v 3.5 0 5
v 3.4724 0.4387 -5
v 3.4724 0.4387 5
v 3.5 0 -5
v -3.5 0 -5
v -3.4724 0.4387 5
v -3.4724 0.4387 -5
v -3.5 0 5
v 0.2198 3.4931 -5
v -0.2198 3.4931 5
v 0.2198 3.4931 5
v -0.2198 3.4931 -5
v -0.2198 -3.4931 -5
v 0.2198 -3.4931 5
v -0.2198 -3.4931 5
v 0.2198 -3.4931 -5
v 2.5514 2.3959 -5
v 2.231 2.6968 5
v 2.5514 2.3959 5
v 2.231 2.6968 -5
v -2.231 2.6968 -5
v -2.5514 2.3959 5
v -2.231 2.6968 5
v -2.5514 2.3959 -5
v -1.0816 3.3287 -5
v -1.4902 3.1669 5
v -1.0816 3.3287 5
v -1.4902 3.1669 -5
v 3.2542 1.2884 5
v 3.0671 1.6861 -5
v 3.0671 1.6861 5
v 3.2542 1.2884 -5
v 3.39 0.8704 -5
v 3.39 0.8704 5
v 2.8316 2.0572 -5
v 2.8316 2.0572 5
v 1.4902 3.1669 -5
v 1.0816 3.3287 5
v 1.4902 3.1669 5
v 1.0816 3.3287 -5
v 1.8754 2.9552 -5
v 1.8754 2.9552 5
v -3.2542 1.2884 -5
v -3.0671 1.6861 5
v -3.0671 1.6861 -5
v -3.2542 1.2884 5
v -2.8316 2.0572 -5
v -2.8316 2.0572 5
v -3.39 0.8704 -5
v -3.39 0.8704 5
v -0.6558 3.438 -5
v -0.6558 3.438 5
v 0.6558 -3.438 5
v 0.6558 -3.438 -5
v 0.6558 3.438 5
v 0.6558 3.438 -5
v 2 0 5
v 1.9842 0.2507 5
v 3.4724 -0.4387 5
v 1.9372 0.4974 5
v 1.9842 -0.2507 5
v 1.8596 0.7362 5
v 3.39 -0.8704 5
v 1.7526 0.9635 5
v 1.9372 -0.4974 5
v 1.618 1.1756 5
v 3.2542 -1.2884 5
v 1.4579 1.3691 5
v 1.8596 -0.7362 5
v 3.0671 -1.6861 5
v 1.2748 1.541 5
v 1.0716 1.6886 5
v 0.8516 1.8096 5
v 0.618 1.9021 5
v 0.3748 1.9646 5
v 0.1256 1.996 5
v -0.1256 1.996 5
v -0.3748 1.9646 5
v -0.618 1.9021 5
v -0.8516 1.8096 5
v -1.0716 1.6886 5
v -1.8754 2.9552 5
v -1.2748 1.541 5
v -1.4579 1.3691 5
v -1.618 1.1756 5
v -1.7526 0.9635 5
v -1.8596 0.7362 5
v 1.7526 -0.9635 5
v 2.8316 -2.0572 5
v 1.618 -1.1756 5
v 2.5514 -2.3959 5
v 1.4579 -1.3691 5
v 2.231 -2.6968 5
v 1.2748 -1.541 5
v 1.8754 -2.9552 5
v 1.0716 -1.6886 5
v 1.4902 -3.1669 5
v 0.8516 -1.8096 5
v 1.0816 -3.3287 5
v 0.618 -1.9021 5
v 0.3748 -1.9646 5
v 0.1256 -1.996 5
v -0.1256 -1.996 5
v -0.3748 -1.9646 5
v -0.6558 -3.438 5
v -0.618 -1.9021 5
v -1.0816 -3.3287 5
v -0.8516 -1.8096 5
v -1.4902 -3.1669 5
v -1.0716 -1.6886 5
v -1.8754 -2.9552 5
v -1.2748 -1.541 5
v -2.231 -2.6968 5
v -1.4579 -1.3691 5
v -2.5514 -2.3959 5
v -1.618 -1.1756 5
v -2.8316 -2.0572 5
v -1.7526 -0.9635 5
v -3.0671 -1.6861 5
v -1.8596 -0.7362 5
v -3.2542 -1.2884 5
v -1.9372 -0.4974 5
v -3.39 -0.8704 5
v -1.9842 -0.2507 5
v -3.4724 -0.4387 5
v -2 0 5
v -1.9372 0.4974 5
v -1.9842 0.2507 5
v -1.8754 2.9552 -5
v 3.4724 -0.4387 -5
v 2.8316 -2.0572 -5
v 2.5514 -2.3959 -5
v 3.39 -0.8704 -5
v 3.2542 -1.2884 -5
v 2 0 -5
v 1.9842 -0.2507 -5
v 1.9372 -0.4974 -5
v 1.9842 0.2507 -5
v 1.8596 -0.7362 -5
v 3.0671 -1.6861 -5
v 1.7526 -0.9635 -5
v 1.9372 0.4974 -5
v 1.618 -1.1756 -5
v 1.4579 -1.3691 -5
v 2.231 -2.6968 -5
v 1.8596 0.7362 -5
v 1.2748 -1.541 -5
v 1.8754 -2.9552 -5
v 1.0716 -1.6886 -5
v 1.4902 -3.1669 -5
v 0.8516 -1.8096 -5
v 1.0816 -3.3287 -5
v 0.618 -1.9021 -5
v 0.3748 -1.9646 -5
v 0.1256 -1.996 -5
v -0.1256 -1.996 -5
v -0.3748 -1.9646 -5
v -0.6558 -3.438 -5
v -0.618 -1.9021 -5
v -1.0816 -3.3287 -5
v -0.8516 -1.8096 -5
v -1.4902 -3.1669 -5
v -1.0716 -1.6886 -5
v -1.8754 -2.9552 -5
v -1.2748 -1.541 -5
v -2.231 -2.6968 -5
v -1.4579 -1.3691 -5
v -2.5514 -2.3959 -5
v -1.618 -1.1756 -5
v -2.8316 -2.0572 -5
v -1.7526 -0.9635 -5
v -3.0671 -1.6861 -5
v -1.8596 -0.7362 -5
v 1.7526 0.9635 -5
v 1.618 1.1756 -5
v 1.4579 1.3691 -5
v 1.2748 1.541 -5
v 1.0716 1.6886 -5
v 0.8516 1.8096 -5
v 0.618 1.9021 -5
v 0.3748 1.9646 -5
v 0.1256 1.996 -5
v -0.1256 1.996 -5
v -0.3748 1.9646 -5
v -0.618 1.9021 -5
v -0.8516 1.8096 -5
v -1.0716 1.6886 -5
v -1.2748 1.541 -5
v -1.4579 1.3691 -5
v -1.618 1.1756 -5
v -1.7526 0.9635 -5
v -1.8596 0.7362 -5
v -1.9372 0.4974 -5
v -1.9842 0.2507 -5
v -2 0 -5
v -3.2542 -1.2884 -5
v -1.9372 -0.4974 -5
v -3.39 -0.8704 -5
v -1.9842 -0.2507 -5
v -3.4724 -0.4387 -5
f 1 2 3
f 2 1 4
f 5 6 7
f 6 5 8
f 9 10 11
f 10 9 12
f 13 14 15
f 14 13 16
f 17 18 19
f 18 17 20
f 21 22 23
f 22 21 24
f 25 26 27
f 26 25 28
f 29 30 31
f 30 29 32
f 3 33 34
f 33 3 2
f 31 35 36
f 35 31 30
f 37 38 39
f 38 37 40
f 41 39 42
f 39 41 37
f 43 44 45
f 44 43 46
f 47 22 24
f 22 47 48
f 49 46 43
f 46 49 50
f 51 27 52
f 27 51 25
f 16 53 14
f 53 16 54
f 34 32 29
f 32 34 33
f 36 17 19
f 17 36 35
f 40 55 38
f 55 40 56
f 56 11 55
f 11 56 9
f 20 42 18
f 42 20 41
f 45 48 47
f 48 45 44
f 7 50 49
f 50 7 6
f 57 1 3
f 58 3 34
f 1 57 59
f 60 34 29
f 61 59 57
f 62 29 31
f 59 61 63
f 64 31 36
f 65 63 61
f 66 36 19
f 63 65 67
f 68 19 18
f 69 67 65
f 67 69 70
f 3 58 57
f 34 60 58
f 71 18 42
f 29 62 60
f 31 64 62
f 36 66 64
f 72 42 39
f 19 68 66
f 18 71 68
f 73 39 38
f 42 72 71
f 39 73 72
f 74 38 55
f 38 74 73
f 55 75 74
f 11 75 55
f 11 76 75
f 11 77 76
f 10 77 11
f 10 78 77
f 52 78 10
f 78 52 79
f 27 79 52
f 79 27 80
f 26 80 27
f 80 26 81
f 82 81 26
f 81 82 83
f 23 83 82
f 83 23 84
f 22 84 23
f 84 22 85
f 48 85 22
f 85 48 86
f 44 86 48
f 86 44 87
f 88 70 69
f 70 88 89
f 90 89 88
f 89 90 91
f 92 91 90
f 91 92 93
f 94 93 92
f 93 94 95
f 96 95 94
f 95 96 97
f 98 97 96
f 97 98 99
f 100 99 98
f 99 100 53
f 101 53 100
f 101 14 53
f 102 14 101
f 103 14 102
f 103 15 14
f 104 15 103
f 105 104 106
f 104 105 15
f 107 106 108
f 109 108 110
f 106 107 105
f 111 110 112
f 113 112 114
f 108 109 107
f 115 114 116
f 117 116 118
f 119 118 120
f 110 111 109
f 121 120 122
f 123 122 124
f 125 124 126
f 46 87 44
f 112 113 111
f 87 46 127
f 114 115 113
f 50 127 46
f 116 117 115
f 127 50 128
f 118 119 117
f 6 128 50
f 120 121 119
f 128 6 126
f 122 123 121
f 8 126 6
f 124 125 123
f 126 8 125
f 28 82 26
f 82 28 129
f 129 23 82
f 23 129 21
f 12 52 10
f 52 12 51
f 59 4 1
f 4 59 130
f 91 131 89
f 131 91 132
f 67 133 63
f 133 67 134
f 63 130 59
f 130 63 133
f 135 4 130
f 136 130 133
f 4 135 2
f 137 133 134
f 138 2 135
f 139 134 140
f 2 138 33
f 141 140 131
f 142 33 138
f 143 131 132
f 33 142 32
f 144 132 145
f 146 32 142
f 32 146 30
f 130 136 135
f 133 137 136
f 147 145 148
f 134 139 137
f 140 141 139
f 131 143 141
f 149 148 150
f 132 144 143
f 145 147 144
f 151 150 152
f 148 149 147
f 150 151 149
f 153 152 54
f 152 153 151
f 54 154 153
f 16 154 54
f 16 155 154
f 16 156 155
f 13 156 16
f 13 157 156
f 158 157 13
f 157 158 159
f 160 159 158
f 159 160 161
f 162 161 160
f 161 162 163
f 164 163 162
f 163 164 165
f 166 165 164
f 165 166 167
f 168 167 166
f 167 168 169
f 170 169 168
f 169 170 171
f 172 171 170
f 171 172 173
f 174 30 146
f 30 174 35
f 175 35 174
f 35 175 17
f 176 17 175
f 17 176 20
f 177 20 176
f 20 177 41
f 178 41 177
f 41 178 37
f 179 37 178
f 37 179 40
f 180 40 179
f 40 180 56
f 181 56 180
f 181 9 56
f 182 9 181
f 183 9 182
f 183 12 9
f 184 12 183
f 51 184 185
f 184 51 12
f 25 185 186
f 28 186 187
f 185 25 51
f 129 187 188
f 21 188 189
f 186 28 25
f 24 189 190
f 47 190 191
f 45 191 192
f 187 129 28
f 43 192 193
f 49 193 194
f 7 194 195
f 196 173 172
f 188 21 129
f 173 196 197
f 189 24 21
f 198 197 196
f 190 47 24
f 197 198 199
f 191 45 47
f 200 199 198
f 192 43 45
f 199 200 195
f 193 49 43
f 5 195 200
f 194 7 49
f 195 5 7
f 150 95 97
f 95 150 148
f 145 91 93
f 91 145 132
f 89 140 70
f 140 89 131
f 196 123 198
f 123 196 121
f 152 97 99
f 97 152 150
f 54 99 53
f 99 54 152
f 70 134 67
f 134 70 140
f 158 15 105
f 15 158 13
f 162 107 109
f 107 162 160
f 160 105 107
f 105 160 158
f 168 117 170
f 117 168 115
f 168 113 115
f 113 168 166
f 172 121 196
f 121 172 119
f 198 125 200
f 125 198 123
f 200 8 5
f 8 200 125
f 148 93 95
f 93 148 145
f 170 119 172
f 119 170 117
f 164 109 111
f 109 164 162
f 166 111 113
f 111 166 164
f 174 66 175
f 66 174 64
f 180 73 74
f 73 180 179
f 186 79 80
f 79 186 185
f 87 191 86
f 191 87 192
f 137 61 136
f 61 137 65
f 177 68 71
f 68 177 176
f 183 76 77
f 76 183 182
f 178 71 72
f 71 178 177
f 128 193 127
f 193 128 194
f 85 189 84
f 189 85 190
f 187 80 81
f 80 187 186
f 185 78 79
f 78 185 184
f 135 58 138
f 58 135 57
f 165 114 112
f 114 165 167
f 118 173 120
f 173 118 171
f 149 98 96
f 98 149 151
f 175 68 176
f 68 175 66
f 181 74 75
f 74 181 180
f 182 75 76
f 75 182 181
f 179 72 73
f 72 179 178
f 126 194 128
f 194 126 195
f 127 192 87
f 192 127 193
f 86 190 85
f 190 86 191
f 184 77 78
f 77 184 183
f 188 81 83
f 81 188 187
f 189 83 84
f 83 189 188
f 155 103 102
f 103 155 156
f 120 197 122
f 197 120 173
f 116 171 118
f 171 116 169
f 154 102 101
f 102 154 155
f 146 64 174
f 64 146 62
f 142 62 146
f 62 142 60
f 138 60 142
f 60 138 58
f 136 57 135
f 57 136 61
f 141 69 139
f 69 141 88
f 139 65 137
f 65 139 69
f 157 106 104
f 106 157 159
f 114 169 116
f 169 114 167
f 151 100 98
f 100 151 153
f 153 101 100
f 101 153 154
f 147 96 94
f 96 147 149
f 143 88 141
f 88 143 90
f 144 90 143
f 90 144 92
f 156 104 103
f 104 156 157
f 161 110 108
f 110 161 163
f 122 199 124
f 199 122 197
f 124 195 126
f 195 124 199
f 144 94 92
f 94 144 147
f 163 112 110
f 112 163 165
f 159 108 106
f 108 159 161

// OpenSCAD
$fn = 50;


difference() {
	union() {
		translate(v = [0, 0, -5.0000000000]) {
			cylinder(h = 10, r = 3.5000000000);
		}
	}
	union() {
		translate(v = [0, 0, -100.0000000000]) {
			cylinder(h = 200, r = 2);
		}
	}
}
